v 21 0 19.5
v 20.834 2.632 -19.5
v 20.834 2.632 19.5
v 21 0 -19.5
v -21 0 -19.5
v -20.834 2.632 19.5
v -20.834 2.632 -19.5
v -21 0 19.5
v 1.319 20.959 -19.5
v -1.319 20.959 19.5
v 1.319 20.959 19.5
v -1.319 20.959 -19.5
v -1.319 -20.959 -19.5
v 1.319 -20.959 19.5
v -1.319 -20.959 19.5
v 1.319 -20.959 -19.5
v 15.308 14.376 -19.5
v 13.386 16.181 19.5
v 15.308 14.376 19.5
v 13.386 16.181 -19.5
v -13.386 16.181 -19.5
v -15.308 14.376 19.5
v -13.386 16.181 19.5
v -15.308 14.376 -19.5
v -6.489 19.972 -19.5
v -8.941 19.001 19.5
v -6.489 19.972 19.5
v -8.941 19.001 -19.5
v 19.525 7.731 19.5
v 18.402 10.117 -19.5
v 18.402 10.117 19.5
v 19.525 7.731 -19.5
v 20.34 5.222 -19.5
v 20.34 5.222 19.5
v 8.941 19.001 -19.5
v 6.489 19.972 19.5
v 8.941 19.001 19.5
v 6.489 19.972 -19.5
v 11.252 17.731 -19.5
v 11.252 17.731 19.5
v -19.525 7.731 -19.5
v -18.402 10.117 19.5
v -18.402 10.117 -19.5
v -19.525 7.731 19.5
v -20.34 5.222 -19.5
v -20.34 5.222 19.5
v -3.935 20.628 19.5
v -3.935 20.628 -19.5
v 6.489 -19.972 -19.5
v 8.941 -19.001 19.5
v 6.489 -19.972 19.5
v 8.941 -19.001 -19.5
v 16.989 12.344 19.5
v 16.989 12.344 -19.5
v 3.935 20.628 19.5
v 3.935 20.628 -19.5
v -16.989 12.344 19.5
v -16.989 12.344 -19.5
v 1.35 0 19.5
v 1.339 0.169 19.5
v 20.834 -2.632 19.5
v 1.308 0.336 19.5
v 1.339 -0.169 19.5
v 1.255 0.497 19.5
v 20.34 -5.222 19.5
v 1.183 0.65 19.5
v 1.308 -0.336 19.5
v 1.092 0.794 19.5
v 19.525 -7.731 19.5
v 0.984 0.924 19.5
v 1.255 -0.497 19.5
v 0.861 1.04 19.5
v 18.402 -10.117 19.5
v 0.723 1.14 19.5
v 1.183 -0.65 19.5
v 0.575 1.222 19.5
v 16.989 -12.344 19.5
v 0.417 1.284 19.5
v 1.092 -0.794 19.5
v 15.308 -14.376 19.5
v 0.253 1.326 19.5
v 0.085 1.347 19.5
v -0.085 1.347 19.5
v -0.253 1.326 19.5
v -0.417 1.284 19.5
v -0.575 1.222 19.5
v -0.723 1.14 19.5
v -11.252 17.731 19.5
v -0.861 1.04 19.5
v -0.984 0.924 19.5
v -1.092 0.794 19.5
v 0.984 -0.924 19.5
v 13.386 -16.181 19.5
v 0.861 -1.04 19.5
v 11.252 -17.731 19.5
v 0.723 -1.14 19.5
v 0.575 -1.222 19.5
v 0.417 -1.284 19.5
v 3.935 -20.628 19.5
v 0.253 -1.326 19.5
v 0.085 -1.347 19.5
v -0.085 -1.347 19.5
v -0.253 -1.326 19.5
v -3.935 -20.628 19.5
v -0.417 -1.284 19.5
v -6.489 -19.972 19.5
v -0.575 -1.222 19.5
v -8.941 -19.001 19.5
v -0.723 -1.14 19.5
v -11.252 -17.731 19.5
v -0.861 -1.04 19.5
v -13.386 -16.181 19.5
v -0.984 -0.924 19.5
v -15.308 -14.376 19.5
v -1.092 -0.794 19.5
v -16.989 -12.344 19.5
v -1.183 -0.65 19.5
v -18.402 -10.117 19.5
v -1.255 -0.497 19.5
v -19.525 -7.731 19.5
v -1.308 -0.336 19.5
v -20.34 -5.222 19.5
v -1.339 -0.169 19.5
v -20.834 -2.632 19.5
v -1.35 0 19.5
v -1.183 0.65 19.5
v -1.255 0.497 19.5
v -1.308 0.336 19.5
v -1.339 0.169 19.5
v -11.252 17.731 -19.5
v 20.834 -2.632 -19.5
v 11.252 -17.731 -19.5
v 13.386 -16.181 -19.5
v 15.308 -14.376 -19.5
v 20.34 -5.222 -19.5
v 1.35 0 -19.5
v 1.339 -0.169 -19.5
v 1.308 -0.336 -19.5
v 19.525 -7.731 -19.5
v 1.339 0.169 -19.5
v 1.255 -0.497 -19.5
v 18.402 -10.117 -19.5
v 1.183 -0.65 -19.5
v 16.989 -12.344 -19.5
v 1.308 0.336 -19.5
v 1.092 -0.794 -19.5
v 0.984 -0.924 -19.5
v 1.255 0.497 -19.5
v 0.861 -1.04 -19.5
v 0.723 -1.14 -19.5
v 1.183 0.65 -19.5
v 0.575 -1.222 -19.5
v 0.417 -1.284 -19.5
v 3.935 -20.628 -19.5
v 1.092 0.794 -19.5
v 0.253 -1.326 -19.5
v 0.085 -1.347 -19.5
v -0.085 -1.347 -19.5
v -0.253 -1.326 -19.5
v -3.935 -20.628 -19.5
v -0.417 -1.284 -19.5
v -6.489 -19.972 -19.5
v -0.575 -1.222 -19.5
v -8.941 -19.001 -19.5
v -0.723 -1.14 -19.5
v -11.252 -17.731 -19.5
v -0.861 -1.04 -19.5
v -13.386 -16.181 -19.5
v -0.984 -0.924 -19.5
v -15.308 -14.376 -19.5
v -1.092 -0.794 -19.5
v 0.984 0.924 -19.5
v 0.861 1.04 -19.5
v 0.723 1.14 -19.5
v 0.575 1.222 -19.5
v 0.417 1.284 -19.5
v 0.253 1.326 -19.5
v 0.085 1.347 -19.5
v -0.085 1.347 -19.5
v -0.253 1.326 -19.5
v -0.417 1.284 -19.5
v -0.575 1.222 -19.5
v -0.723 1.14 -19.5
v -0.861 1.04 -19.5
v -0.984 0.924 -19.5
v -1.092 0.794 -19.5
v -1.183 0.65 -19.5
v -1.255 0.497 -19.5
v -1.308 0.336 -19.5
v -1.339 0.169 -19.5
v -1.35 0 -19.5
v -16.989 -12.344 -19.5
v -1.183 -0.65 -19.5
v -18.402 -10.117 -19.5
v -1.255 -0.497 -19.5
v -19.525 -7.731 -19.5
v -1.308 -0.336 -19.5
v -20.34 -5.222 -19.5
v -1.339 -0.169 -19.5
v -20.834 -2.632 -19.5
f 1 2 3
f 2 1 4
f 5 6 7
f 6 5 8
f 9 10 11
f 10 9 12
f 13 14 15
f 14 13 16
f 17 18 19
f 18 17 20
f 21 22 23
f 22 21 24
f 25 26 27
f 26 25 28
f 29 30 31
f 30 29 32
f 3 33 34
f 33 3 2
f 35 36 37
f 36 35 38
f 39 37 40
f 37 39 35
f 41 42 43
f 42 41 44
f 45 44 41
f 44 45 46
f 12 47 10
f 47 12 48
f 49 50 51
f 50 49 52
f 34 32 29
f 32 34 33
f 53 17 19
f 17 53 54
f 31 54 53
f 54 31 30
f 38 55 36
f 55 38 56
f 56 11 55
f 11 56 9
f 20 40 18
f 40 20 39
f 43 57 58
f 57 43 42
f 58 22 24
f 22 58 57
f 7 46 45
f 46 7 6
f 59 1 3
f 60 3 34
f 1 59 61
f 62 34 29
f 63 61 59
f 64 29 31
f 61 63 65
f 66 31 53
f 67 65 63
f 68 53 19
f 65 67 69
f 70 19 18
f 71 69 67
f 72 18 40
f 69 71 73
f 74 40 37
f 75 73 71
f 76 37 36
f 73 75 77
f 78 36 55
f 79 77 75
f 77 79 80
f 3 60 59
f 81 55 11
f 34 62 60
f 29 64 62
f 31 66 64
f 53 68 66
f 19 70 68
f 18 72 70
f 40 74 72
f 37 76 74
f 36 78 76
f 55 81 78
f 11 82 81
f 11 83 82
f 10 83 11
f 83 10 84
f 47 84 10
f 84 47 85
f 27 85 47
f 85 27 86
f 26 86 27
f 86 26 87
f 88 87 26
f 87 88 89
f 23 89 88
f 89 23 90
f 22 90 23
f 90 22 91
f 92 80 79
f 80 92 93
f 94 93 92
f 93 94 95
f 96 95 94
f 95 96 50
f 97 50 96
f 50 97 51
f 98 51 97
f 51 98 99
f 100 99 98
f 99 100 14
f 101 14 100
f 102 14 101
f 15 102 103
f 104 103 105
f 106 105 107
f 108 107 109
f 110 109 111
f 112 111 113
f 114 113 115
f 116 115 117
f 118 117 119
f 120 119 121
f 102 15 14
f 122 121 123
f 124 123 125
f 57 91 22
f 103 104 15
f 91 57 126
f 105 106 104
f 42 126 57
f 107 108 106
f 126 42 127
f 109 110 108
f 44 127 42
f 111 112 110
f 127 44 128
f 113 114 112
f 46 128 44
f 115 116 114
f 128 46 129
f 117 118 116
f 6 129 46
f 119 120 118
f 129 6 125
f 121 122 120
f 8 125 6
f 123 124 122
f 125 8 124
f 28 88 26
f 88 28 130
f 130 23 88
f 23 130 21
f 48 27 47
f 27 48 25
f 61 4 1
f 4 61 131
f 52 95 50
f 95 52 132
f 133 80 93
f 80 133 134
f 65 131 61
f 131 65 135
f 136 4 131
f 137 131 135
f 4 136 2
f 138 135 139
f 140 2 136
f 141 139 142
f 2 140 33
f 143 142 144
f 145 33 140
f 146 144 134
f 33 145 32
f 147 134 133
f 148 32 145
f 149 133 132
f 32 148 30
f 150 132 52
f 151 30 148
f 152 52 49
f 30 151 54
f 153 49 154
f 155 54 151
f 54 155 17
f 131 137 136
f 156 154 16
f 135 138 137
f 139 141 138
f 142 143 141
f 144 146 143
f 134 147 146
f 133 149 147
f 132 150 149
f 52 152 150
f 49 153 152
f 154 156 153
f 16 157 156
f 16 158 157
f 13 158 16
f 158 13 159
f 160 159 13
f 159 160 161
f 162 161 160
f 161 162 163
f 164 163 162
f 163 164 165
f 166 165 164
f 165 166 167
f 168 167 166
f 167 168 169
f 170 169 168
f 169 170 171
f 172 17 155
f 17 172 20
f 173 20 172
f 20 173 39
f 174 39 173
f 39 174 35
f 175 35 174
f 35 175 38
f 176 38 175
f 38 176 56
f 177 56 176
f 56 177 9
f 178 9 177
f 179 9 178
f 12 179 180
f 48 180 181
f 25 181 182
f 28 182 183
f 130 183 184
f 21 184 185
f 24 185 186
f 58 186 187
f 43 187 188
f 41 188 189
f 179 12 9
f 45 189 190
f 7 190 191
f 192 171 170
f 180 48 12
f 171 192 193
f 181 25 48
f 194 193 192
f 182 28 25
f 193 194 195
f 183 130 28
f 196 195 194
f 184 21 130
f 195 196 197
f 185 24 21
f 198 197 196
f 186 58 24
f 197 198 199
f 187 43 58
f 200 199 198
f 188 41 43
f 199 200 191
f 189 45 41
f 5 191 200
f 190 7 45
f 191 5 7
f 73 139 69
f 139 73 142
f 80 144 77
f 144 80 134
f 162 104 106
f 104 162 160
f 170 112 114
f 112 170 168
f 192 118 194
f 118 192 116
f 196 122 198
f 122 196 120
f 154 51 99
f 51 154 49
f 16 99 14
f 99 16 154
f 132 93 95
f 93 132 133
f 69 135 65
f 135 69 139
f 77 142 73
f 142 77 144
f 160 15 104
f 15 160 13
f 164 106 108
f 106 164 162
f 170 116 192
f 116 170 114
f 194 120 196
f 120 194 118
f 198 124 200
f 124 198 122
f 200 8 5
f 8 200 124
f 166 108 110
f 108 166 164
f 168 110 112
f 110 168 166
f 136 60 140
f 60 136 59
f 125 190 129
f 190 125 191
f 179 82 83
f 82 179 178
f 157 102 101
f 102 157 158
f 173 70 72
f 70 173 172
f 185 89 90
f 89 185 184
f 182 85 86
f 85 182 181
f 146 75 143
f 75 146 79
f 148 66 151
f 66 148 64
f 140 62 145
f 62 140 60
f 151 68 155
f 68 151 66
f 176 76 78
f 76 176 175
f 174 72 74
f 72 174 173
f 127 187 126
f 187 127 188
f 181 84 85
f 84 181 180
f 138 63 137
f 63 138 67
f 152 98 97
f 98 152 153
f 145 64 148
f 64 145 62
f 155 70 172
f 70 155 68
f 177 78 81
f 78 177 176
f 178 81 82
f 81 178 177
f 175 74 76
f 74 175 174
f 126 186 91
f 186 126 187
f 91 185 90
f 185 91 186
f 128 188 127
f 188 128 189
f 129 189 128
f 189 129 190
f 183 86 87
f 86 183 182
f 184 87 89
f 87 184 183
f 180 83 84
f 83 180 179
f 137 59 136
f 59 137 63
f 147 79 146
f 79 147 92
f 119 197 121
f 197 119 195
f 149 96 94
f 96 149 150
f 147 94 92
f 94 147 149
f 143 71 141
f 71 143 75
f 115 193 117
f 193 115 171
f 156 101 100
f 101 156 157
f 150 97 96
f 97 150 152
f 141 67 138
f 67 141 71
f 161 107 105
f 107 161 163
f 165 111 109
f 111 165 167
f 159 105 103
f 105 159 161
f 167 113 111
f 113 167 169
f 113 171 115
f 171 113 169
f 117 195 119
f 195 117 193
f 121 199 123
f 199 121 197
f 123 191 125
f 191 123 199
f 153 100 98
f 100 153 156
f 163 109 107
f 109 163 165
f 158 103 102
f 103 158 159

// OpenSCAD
$fn = 50;


difference() {
	union() {
		translate(v = [0, 0, -19.5000000000]) {
			cylinder(h = 39, r = 21.0000000000);
		}
	}
	union() {
		translate(v = [0, 0, -100.0000000000]) {
			cylinder(h = 200, r = 1.3500000000);
		}
	}
}
